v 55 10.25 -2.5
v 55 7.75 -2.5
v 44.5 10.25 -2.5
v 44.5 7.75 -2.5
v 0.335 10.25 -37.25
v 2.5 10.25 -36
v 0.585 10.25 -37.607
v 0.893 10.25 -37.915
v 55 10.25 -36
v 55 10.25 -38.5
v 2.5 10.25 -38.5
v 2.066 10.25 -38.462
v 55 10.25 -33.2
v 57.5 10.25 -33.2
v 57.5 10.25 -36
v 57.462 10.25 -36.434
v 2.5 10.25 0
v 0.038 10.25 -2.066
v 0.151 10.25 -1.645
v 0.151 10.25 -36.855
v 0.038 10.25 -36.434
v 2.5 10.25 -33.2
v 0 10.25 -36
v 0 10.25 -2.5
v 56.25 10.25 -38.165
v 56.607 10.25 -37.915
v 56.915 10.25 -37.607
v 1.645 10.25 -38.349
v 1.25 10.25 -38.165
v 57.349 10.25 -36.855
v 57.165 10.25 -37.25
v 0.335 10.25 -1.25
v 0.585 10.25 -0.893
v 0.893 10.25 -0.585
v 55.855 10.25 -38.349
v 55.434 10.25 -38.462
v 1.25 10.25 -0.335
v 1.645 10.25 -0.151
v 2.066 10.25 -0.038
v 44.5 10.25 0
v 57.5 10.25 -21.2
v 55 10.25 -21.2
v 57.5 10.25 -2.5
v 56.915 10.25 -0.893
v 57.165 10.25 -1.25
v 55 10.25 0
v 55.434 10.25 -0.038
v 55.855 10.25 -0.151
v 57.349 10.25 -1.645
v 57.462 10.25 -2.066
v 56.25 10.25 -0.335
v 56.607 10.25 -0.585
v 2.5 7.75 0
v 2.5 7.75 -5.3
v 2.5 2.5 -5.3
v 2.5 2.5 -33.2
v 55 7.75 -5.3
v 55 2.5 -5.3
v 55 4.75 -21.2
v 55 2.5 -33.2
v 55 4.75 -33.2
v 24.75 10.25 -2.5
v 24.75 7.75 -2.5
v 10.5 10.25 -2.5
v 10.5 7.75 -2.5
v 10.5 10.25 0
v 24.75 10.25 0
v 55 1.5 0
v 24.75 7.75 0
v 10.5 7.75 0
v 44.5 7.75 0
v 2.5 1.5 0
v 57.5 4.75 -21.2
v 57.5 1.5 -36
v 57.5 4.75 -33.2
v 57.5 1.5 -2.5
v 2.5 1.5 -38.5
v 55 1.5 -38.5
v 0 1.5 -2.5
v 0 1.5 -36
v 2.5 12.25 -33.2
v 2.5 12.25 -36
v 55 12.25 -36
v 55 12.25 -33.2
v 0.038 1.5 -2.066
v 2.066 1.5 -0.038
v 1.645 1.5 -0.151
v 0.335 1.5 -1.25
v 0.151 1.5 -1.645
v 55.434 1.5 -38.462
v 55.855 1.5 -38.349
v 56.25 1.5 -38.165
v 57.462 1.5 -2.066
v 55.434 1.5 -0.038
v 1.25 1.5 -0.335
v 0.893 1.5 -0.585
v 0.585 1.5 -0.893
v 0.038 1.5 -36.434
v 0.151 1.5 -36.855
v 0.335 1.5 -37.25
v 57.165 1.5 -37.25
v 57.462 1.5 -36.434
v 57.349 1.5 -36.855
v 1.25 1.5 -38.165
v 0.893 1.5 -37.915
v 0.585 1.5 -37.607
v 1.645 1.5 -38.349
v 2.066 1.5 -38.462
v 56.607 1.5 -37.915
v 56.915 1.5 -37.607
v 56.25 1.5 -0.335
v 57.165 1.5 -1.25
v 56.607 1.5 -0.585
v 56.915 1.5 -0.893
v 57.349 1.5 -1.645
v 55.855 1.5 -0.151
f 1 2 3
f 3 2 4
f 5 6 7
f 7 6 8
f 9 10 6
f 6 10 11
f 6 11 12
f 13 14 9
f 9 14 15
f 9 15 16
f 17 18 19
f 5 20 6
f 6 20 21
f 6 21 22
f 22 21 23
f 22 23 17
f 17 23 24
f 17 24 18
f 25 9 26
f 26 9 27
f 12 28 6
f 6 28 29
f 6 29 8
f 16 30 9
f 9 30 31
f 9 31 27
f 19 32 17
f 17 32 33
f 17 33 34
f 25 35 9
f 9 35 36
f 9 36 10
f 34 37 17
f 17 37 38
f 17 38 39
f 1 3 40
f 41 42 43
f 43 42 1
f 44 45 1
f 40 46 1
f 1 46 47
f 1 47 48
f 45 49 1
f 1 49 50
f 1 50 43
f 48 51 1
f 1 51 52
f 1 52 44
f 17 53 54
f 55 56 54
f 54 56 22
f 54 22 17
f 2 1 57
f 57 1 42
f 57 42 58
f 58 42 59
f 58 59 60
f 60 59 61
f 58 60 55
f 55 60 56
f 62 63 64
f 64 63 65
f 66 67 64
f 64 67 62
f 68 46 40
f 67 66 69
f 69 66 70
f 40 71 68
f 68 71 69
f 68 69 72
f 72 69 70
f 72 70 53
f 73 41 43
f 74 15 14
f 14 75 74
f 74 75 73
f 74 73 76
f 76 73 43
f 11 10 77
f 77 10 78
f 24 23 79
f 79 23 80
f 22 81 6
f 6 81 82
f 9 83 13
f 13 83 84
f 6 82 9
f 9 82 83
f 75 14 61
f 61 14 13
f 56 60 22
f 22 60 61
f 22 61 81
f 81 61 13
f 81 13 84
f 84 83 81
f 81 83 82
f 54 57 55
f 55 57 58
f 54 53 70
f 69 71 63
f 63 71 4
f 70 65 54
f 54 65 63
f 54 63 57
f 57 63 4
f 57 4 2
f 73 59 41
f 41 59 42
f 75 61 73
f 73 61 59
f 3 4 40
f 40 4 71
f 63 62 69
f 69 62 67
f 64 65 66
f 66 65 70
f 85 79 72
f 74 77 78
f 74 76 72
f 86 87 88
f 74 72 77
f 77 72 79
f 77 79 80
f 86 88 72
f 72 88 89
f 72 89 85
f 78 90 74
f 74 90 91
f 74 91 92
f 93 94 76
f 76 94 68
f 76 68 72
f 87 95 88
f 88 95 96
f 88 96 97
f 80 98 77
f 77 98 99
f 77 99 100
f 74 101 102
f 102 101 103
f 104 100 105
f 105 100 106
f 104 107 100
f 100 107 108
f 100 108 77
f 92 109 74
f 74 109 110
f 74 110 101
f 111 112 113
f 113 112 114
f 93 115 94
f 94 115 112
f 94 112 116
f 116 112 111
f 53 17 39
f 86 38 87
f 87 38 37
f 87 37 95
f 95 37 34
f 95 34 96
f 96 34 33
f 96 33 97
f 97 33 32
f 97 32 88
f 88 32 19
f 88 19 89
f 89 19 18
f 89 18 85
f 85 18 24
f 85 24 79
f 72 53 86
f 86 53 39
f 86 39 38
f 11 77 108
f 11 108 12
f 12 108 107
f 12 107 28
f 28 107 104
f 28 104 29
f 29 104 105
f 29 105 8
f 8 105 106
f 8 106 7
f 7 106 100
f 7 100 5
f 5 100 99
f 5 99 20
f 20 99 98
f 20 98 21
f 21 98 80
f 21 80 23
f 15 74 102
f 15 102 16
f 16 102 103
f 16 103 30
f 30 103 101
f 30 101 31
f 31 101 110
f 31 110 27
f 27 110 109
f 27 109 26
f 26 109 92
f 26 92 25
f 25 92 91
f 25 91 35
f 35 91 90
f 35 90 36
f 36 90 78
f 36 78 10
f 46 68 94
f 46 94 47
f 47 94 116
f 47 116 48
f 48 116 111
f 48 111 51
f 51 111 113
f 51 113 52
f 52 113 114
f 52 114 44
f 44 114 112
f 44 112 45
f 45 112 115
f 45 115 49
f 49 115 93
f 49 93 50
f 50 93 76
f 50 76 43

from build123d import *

# Parameters (mm, degrees)
SKETCH1_W            = 57.5
SKETCH1_H            = 38.5
SKETCH1_W_2          = 52.5
SKETCH1_H_2          = 33.5
BOSS_EXTRUDE1_DEPTH  = 10.25
SKETCH10_W           = 52.5
SKETCH10_H           = 33.5
BOSS_EXTRUDE8_DEPTH  = 2.5
SKETCH11_W           = 52.5
SKETCH11_H           = 2.8
BOSS_EXTRUDE9_DEPTH  = 9.75
SKETCH12_W           = 52.5
SKETCH12_H           = 2.8
BOSS_EXTRUDE10_DEPTH = 5.25
SKETCH13_W           = 12
SKETCH13_H           = 5.5
CUT_EXTRUDE1_DEPTH   = 2.5
SKETCH14_W           = 8
SKETCH14_H           = 2.5
SKETCH14_W_2         = 19.75
CUT_EXTRUDE2_DEPTH   = 2.5
SKETCH15_W           = 38.5
SKETCH15_H           = 1.5
CUT_EXTRUDE3_DEPTH   = 57.5
FILLET1_R            = 2.5


with BuildPart() as part:
    # Sketch1 → Boss-Extrude1 (new body)
    with BuildSketch(Plane(origin=(0, 0, 0), x_dir=(1, 0, 0), z_dir=(0, 1, 0))):
        with Locations((28.75, 19.25)):
            Rectangle(SKETCH1_W, SKETCH1_H)
        with Locations((28.75, 19.25)):
            Rectangle(SKETCH1_W_2, SKETCH1_H_2, mode=Mode.SUBTRACT)
    extrude(amount=BOSS_EXTRUDE1_DEPTH)

    # Sketch10 → Boss-Extrude8 (add)
    with BuildSketch(Plane(origin=(0, 0, 0), x_dir=(1, 0, 0), z_dir=(0, 1, 0))):
        with Locations((28.75, 19.25)):
            Rectangle(SKETCH10_W, SKETCH10_H)
    extrude(amount=BOSS_EXTRUDE8_DEPTH)

    # Sketch11 → Boss-Extrude9 (add)
    with BuildSketch(Plane(origin=(0, 2.5, 0), x_dir=(1, 0, 0), z_dir=(0, 1, 0))):
        with Locations((28.75, 34.6)):
            Rectangle(SKETCH11_W, SKETCH11_H)
    extrude(amount=BOSS_EXTRUDE9_DEPTH)

    # Sketch12 → Boss-Extrude10 (add)
    with BuildSketch(Plane(origin=(0, 2.5, 0), x_dir=(1, 0, 0), z_dir=(0, 1, 0))):
        with Locations((28.75, 3.9)):
            Rectangle(SKETCH12_W, SKETCH12_H)
    extrude(amount=BOSS_EXTRUDE10_DEPTH)

    # Sketch13 → Cut-Extrude1 (cut)
    with BuildSketch(Plane(origin=(57.5, 0, 0), x_dir=(0, 0, -1), z_dir=(1, 0, 0))):
        with Locations((27.2, 7.5)):
            Rectangle(SKETCH13_W, SKETCH13_H)
    extrude(amount=-CUT_EXTRUDE1_DEPTH, mode=Mode.SUBTRACT)

    # Sketch14 → Cut-Extrude2 (cut)
    with BuildSketch(Plane(origin=(0, 0, -2.5), x_dir=(-1, 0, 0), z_dir=(0, 0, -1))):
        with Locations((-6.5, 9)):
            Rectangle(SKETCH14_W, SKETCH14_H)
        with Locations((-34.625, 9)):
            Rectangle(SKETCH14_W_2, SKETCH14_H)
    extrude(amount=-CUT_EXTRUDE2_DEPTH, mode=Mode.SUBTRACT)

    # Sketch15 → Cut-Extrude3 (cut)
    with BuildSketch(Plane.ZY):
        with Locations((-19.25, 0.75)):
            Rectangle(SKETCH15_W, SKETCH15_H)
    extrude(amount=-CUT_EXTRUDE3_DEPTH, mode=Mode.SUBTRACT)

    # Fillet1
    fillet1_edges = [part.edges().sort_by_distance(p)[0] for p in [
        (0, 5.875, 0),
        (0, 5.875, -38.5),
        (57.5, 5.875, -38.5),
        (57.5, 5.875, 0),
    ]]
    fillet(fillet1_edges, radius=FILLET1_R)


solid = part.part
